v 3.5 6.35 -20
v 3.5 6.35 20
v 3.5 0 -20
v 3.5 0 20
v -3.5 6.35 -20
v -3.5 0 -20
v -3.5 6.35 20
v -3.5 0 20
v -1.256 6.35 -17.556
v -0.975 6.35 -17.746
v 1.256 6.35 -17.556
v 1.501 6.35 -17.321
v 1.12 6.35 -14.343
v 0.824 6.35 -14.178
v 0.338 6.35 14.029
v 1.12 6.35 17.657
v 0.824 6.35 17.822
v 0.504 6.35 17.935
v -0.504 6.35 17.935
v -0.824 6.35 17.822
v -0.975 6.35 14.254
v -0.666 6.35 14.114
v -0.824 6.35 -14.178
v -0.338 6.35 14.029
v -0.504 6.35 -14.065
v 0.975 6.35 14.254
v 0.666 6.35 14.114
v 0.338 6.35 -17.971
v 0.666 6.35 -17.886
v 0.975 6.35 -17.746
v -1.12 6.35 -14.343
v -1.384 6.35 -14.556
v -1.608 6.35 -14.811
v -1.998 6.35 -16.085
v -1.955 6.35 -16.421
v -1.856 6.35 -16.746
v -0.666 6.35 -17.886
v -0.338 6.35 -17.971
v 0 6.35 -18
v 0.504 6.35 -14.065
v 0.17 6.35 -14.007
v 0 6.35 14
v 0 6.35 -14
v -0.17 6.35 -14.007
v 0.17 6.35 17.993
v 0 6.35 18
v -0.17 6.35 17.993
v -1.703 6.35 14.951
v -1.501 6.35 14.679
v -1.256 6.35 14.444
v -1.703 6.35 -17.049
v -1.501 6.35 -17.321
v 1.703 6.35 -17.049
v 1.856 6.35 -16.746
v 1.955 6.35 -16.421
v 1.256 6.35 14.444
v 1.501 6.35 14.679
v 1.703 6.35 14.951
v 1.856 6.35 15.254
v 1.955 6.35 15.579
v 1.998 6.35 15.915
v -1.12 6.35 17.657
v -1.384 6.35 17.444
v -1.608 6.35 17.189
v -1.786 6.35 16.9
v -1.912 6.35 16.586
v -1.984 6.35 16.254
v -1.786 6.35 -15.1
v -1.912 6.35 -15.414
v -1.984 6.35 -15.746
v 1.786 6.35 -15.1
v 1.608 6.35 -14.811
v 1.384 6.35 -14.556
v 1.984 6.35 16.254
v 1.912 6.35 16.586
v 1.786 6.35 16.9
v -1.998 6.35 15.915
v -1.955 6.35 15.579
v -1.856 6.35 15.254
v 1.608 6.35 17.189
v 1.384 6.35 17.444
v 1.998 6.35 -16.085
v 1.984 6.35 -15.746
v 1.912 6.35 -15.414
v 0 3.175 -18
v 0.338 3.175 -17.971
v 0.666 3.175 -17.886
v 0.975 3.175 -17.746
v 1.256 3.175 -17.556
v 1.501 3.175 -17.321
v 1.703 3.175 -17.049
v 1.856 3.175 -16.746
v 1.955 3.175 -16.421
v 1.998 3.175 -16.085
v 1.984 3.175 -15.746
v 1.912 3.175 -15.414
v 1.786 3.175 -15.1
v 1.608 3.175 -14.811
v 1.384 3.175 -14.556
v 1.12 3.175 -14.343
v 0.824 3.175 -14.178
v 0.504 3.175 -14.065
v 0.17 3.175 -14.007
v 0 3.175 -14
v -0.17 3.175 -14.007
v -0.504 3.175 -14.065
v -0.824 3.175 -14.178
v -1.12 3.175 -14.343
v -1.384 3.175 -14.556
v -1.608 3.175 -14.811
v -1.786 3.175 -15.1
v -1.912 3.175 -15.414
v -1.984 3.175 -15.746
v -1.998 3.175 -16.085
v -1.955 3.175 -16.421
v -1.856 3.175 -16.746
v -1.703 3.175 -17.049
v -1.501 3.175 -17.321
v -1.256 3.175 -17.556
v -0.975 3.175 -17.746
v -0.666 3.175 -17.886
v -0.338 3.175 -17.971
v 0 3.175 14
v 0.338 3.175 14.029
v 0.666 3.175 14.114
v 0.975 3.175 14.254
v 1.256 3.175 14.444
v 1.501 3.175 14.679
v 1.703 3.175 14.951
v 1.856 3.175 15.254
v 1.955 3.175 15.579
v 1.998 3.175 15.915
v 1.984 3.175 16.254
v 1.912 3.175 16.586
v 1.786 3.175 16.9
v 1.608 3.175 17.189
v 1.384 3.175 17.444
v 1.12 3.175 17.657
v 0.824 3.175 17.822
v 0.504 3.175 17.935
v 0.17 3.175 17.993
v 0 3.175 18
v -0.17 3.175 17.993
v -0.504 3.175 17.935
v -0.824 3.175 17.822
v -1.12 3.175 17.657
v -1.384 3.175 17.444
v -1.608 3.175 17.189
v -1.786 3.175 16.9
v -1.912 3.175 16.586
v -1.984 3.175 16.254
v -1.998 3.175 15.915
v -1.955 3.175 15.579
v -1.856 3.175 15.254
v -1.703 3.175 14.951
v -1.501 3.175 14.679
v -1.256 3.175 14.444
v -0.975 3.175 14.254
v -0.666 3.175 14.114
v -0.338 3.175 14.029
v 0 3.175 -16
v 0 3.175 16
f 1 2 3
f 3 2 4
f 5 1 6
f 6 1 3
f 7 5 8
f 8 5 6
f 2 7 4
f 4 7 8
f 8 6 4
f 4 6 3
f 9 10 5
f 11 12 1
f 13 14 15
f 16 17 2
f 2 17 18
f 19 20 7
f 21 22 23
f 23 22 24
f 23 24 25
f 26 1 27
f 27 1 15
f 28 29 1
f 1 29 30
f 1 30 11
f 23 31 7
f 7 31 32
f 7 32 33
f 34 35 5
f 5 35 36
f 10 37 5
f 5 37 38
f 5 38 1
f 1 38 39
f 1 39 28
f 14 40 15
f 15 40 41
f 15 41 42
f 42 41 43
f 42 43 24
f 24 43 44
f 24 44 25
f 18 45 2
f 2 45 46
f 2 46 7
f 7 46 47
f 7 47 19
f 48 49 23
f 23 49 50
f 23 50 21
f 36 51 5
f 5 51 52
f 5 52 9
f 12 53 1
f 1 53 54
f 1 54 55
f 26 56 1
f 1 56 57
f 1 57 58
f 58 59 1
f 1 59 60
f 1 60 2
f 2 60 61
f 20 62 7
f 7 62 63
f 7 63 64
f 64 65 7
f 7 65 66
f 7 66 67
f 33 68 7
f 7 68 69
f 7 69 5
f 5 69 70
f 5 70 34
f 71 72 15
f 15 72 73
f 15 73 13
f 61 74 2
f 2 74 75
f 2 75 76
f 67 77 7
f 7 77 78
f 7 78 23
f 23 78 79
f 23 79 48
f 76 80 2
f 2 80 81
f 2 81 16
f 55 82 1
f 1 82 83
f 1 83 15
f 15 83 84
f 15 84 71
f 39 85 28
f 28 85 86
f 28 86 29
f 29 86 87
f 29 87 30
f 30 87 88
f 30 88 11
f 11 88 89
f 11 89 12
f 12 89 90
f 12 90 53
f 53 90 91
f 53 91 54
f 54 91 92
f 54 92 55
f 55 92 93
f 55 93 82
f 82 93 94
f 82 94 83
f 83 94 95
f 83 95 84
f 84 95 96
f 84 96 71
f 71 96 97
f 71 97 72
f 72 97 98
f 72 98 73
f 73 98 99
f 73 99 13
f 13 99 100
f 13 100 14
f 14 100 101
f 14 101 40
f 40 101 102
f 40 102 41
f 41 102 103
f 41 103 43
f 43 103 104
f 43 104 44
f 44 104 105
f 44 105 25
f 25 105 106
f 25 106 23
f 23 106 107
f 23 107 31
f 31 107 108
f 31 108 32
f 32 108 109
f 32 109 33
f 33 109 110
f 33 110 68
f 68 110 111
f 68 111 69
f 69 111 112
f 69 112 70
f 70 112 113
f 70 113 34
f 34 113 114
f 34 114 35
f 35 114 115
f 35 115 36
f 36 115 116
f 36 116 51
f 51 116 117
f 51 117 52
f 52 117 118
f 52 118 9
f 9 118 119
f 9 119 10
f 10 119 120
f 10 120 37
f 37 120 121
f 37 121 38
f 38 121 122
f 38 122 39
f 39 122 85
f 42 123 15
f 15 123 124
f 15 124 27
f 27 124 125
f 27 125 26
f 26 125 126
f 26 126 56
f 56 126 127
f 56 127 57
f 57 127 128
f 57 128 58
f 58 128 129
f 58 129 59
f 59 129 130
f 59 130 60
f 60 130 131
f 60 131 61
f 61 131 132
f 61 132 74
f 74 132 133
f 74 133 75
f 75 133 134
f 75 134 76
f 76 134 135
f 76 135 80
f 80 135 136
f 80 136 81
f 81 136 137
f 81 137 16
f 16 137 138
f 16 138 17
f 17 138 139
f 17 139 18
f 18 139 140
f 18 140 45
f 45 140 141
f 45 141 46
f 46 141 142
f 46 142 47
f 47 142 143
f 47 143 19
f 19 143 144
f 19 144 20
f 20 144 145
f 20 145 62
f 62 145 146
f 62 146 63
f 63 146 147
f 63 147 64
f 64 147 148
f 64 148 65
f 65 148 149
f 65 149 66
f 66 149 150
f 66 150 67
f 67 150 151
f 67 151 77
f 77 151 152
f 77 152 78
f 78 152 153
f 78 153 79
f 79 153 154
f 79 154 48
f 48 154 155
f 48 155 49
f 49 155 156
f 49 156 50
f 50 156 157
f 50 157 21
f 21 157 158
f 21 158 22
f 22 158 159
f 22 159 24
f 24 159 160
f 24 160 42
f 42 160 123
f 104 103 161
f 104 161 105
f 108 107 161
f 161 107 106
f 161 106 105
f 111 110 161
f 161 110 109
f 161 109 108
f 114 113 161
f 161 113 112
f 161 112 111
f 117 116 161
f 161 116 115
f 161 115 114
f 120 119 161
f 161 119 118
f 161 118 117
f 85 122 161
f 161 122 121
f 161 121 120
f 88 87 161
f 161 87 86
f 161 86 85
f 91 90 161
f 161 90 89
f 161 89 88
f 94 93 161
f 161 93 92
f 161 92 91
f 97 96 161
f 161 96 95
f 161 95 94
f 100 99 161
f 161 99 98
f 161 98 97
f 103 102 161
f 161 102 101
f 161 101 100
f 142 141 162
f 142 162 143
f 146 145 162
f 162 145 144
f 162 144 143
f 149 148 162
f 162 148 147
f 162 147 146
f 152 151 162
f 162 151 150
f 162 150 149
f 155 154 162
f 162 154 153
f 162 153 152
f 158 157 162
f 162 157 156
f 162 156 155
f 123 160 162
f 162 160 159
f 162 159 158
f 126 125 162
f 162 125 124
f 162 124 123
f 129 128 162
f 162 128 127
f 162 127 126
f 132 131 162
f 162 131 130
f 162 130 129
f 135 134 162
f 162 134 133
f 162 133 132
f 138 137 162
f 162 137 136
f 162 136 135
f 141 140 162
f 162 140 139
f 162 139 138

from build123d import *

# Parameters (mm, degrees)
SKETCH1_W           = 7
SKETCH1_H           = 40
BOSS_EXTRUDE1_DEPTH = 3.175
SKETCH2_W           = 7
SKETCH2_H           = 40
SKETCH2_R           = 2
BOSS_EXTRUDE2_DEPTH = 3.175


with BuildPart() as part:
    # Sketch1 → Boss-Extrude1 (new body)
    with BuildSketch(Plane(origin=(0, 0, 0), x_dir=(1, 0, 0), z_dir=(0, 1, 0))):
        Rectangle(SKETCH1_W, SKETCH1_H)
    extrude(amount=BOSS_EXTRUDE1_DEPTH)

    # Sketch2 → Boss-Extrude2 (add)
    with BuildSketch(Plane(origin=(0, 3.175, 0), x_dir=(1, 0, 0), z_dir=(0, 1, 0))):
        Rectangle(SKETCH2_W, SKETCH2_H)
        with Locations(Location((0, 16, 0), (0, 0, 270))):
            Circle(SKETCH2_R, mode=Mode.SUBTRACT)
        with Locations(Location((0, -16, 0), (0, 0, 270))):
            Circle(SKETCH2_R, mode=Mode.SUBTRACT)
    extrude(amount=BOSS_EXTRUDE2_DEPTH)


solid = part.part
